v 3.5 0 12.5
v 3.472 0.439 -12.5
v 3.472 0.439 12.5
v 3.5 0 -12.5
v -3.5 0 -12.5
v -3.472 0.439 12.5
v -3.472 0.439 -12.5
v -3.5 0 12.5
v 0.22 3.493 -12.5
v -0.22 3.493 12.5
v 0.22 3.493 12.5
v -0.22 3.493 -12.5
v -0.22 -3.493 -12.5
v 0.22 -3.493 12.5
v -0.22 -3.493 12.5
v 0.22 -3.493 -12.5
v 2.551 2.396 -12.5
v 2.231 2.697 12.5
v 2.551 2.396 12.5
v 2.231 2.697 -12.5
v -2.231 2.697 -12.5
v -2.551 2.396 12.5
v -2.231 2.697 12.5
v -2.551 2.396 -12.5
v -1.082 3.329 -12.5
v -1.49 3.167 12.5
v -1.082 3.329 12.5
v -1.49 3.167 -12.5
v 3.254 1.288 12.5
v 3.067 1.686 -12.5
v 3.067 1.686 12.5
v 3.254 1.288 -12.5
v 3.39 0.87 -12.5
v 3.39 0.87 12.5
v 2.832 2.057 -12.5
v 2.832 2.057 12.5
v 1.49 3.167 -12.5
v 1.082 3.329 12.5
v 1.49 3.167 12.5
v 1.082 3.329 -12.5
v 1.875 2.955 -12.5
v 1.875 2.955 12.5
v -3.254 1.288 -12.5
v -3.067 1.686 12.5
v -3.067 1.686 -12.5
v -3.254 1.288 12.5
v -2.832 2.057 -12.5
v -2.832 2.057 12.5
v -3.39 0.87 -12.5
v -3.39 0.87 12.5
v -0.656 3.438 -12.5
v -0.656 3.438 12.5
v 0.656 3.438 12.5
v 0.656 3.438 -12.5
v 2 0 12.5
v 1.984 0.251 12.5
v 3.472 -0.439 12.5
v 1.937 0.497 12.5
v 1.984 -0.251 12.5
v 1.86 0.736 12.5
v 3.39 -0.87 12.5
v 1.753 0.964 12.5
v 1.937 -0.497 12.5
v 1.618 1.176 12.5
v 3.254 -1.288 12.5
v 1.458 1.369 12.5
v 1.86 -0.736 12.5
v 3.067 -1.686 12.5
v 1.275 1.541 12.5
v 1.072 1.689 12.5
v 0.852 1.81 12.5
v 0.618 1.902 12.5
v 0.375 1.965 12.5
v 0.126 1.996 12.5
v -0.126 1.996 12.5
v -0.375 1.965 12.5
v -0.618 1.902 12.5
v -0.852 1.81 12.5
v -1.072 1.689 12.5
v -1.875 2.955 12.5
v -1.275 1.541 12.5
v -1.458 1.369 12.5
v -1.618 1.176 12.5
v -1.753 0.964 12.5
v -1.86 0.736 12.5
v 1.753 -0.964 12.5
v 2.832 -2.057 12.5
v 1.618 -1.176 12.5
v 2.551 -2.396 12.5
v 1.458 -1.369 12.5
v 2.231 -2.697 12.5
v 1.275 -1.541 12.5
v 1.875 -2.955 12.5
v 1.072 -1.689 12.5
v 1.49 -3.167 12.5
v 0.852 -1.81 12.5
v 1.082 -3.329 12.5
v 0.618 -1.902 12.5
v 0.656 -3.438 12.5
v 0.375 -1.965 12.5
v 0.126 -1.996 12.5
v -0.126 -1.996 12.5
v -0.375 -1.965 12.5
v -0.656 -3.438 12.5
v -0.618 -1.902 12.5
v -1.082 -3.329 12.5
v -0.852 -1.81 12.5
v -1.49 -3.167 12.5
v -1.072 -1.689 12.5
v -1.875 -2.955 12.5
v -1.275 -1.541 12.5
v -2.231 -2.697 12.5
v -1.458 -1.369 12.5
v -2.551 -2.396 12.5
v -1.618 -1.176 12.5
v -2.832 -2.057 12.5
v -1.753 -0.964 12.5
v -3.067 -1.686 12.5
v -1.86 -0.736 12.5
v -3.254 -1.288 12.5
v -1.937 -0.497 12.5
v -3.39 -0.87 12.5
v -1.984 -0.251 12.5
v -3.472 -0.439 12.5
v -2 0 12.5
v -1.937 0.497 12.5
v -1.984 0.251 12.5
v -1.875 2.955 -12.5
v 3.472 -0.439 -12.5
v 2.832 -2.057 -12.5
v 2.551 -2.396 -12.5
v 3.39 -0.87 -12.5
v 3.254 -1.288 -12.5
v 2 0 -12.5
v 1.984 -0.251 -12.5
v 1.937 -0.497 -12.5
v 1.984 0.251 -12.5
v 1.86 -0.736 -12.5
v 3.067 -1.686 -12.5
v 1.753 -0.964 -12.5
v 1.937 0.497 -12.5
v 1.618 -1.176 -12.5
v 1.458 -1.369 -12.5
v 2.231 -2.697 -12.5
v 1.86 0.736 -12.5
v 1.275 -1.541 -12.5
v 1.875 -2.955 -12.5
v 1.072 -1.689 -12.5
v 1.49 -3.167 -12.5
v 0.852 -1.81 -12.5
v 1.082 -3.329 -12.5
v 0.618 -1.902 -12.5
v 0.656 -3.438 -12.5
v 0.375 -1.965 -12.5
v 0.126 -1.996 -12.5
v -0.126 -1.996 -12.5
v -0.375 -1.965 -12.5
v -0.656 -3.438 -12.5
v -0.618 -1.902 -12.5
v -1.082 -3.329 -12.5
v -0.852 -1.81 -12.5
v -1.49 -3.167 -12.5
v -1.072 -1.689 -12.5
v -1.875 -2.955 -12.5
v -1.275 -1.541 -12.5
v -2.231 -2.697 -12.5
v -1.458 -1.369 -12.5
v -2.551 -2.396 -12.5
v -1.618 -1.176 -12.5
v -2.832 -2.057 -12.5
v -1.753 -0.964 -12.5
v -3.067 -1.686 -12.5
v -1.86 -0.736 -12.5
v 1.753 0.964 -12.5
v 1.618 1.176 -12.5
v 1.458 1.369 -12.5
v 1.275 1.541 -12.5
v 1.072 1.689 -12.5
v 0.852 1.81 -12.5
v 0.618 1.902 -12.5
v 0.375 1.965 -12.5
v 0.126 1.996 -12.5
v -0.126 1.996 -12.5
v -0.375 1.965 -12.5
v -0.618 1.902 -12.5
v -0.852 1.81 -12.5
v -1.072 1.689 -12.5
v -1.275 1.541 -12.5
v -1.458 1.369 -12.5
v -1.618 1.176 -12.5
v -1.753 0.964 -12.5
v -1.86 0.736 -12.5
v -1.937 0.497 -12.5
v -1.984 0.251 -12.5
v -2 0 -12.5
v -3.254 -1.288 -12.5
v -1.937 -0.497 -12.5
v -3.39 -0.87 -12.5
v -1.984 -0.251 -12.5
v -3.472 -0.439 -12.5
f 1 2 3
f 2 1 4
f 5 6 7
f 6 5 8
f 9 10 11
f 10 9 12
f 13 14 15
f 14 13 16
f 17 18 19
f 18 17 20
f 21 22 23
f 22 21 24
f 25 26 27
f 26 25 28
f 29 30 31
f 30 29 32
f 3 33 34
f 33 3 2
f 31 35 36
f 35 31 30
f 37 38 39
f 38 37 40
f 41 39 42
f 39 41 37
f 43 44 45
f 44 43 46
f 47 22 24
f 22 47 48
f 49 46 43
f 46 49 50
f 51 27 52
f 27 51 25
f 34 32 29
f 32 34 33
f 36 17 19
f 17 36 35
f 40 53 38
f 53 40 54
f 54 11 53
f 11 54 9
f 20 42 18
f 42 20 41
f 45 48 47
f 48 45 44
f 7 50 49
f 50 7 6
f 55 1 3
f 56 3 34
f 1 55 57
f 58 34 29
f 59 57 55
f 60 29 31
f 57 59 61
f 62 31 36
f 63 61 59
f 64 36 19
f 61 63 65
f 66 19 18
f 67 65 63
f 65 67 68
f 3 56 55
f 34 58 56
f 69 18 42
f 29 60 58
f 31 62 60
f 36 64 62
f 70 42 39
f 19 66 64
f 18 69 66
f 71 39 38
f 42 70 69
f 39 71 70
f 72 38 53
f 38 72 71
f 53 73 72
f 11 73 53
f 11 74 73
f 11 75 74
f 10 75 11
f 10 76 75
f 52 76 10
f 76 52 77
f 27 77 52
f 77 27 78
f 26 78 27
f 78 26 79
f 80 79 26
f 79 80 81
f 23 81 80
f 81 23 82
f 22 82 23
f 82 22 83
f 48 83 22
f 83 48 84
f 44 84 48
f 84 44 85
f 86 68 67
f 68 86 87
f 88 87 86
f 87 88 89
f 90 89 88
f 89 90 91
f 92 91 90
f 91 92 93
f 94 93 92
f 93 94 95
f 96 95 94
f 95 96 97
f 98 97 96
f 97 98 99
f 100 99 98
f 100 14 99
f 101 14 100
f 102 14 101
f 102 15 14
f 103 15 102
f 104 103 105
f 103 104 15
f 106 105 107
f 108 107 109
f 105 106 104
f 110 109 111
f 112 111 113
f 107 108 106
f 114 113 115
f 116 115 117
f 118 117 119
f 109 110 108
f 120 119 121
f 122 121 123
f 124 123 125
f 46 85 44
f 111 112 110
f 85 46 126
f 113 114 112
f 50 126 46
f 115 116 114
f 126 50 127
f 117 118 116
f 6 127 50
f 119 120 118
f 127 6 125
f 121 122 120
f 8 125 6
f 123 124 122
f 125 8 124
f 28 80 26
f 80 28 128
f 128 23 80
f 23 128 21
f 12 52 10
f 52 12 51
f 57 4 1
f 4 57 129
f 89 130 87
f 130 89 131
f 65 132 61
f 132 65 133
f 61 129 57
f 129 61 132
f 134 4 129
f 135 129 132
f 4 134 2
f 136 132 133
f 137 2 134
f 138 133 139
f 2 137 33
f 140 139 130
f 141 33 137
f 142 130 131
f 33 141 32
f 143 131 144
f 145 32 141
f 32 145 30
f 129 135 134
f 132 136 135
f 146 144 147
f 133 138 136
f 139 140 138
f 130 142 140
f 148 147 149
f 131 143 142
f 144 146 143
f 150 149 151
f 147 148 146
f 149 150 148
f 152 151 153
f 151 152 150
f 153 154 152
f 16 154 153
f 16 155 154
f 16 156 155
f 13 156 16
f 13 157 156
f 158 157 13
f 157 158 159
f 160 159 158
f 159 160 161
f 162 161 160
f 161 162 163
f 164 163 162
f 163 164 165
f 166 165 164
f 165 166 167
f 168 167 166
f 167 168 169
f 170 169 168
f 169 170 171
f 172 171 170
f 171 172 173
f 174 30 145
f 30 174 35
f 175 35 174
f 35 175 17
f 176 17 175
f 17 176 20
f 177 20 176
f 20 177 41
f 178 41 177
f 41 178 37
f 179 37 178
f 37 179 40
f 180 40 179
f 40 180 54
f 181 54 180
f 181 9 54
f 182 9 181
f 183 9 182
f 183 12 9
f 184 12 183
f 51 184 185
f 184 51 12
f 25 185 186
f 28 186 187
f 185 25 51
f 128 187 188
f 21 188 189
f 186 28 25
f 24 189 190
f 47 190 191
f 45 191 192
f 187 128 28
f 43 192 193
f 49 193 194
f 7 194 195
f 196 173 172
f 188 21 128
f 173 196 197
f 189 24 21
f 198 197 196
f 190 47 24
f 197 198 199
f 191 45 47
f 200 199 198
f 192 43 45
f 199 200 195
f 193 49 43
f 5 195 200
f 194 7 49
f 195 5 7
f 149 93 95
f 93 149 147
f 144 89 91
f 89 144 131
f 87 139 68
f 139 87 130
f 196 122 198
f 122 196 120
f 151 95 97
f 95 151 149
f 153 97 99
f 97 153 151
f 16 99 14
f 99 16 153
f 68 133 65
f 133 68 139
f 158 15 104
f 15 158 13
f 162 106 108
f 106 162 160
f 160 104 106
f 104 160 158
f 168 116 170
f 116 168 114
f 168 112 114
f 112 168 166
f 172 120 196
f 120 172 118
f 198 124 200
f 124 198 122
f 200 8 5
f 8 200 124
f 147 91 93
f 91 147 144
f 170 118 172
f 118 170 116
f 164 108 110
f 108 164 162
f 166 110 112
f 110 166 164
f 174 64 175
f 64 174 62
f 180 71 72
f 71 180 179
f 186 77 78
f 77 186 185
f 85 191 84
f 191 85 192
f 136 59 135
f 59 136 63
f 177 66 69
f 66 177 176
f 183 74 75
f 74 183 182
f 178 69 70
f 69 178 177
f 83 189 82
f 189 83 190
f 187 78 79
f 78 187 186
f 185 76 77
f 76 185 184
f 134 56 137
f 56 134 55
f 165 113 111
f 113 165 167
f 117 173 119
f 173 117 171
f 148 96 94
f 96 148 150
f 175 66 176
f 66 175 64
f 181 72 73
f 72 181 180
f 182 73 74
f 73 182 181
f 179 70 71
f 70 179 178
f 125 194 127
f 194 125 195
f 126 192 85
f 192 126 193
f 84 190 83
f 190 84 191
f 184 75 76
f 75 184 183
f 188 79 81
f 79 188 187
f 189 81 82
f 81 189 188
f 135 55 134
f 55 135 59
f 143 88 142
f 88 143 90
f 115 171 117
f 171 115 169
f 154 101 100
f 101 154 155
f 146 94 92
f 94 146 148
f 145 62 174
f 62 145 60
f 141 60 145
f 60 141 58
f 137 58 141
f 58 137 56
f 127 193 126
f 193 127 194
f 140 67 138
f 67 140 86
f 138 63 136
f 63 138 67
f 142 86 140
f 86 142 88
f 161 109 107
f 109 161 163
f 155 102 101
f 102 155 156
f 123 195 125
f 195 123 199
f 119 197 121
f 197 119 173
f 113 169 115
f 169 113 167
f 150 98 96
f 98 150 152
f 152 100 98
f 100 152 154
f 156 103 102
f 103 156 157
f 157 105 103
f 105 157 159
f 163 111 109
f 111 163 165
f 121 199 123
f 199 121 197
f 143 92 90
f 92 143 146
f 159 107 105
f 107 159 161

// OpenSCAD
$fn = 50;


difference() {
	union() {
		translate(v = [0, 0, -12.5000000000]) {
			cylinder(h = 25, r = 3.5000000000);
		}
	}
	union() {
		translate(v = [0, 0, -100.0000000000]) {
			cylinder(h = 200, r = 2);
		}
	}
}
